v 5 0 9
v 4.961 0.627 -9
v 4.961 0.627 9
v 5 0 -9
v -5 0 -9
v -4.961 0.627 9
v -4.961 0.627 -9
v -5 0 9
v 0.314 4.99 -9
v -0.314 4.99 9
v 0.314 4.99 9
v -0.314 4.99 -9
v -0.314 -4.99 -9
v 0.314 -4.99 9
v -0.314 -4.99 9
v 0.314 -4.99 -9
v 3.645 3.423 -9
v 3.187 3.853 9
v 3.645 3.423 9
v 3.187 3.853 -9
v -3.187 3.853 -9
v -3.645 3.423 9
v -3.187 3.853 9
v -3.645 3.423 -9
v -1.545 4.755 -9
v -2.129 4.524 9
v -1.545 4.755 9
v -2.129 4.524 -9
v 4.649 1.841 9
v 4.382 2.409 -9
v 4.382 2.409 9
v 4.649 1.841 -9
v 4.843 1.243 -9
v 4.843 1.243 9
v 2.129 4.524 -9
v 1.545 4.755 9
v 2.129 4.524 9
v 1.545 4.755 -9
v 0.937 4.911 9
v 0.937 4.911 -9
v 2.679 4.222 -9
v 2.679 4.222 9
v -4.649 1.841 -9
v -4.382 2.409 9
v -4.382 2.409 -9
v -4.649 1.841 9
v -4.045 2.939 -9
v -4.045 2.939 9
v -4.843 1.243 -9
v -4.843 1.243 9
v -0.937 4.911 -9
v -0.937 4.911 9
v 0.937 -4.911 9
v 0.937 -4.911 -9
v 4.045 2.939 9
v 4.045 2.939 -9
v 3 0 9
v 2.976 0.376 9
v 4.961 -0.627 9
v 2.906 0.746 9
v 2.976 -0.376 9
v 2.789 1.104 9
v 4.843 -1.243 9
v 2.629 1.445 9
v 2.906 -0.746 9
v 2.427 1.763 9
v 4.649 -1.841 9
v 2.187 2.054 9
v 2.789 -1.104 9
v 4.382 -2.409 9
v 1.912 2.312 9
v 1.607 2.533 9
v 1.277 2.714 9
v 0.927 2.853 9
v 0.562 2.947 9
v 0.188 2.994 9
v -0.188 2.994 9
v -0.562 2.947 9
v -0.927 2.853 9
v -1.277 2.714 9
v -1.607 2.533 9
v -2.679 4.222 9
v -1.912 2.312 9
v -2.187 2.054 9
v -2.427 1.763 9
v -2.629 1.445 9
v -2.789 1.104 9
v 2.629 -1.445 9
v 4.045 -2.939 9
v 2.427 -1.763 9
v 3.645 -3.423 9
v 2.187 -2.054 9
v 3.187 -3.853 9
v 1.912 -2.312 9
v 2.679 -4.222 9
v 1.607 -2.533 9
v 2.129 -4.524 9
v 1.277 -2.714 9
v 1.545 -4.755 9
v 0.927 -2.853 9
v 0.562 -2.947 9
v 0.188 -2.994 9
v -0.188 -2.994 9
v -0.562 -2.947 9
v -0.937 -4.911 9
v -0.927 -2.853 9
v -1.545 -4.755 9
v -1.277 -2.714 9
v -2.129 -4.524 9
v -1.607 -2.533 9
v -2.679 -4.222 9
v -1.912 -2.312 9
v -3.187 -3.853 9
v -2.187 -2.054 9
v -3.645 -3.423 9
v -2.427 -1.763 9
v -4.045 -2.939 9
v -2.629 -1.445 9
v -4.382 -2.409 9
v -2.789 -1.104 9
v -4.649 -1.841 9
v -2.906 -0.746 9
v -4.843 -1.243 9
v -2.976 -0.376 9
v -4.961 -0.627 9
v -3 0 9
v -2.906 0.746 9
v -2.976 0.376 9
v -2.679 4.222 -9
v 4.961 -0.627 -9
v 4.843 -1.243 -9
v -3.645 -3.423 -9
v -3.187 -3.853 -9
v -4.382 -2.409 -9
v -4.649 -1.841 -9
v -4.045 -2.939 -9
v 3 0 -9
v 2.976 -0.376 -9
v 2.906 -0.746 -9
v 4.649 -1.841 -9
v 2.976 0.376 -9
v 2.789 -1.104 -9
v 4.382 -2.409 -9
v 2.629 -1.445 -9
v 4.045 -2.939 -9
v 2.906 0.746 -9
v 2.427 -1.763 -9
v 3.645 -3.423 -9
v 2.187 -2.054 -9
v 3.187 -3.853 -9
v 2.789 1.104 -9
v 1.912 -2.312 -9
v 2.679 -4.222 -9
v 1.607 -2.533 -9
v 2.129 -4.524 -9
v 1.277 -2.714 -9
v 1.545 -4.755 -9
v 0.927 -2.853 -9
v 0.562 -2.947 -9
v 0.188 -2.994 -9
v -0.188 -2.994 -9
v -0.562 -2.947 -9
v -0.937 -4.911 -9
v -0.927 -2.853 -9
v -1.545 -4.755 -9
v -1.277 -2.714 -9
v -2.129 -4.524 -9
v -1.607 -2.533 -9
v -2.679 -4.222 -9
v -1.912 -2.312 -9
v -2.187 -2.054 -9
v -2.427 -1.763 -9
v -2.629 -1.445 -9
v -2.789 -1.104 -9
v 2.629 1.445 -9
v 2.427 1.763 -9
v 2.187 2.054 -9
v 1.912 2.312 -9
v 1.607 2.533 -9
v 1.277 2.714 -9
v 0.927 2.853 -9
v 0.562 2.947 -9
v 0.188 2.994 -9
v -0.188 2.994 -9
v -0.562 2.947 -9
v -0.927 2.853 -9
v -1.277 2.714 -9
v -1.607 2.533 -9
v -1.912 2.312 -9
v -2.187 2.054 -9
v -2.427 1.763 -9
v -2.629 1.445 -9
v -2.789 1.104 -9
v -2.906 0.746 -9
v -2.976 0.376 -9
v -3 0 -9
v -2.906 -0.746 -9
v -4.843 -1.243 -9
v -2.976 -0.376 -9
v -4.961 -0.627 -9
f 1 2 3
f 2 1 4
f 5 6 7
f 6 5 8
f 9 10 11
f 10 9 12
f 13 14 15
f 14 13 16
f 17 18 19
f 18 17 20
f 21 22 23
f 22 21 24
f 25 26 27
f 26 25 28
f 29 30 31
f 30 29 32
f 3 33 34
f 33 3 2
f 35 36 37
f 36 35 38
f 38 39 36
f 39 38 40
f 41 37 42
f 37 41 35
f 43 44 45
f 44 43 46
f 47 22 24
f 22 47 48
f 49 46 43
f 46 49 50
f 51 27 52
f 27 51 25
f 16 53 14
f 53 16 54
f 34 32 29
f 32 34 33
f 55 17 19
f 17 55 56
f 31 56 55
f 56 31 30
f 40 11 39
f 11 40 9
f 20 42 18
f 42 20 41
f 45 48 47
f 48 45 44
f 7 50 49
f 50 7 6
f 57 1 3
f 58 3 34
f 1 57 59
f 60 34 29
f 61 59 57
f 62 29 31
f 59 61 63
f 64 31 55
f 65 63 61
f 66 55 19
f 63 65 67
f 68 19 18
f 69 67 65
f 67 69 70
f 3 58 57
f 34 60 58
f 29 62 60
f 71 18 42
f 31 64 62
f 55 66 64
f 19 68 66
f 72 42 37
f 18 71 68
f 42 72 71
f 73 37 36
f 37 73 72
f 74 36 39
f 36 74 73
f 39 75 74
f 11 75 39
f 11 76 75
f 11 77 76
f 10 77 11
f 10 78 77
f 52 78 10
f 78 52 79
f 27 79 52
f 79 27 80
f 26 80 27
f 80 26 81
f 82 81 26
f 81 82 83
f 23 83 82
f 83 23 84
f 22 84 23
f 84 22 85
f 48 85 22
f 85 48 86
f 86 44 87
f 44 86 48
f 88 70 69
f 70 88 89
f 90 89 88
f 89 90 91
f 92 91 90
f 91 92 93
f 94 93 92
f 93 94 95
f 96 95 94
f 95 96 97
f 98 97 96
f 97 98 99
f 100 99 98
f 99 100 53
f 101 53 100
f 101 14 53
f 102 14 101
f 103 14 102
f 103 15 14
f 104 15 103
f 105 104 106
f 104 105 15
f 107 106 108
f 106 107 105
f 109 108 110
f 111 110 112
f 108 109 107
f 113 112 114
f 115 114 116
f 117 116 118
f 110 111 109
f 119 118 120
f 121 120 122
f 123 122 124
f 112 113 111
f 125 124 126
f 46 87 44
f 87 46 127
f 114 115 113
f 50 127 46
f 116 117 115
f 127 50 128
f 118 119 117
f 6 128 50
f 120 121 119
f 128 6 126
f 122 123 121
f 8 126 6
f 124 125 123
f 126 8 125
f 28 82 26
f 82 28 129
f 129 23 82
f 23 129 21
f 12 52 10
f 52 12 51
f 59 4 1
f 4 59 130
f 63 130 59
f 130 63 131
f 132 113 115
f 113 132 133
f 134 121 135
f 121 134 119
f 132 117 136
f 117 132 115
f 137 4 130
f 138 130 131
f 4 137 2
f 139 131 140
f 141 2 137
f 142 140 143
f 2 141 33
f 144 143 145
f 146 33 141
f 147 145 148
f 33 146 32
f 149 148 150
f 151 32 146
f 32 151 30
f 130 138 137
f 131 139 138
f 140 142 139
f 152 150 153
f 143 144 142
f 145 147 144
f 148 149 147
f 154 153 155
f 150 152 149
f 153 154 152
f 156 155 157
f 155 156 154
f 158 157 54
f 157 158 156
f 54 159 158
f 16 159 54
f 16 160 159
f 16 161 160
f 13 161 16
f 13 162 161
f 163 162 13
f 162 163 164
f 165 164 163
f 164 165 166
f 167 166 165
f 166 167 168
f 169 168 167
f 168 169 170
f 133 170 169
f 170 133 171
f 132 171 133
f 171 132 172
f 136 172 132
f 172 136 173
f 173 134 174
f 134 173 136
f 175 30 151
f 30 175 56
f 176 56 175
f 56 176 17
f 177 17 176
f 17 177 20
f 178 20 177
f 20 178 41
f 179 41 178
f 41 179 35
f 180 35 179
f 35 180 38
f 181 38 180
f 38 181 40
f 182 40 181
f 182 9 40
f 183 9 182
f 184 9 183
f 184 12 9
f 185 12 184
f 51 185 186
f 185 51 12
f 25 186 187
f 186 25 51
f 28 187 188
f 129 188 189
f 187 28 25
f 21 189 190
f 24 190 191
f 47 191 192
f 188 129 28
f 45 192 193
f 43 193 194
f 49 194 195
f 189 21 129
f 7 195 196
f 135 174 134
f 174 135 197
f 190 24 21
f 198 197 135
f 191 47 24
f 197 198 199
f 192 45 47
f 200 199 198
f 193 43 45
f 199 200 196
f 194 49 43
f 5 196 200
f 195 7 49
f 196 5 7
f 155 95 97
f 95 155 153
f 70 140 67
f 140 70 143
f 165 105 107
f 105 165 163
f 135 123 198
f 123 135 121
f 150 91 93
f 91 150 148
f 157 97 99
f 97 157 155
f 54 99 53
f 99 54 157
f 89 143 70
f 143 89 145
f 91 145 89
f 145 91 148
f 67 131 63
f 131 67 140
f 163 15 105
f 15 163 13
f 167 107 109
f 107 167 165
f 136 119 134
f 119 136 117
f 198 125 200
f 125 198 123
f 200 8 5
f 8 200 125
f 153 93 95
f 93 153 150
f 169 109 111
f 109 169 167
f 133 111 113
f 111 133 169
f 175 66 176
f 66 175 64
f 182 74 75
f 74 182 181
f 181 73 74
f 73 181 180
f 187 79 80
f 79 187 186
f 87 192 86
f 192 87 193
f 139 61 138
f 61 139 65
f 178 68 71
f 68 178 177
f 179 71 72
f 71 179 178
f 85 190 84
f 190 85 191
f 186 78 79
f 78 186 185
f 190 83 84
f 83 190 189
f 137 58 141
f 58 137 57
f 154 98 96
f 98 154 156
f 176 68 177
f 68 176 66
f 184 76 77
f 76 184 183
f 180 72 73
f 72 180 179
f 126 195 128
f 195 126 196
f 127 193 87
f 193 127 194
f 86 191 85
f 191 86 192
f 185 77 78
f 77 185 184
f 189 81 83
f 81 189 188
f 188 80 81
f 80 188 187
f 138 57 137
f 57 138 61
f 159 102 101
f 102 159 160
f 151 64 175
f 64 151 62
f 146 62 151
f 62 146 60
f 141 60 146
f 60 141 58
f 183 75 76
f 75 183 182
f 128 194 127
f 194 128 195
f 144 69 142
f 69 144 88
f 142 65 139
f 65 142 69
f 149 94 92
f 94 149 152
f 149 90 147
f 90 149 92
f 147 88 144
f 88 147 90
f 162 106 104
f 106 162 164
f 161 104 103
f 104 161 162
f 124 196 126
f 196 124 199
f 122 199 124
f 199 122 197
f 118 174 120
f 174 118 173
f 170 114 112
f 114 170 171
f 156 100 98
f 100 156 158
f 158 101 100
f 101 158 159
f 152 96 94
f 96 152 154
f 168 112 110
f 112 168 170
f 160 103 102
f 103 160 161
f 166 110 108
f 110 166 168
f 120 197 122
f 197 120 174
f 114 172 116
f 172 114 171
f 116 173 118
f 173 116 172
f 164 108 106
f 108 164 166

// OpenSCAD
$fn = 50;


difference() {
	union() {
		translate(v = [0, 0, -9.0000000000]) {
			cylinder(h = 18, r = 5.0000000000);
		}
	}
	union() {
		translate(v = [0, 0, -100.0000000000]) {
			cylinder(h = 200, r = 3);
		}
	}
}
